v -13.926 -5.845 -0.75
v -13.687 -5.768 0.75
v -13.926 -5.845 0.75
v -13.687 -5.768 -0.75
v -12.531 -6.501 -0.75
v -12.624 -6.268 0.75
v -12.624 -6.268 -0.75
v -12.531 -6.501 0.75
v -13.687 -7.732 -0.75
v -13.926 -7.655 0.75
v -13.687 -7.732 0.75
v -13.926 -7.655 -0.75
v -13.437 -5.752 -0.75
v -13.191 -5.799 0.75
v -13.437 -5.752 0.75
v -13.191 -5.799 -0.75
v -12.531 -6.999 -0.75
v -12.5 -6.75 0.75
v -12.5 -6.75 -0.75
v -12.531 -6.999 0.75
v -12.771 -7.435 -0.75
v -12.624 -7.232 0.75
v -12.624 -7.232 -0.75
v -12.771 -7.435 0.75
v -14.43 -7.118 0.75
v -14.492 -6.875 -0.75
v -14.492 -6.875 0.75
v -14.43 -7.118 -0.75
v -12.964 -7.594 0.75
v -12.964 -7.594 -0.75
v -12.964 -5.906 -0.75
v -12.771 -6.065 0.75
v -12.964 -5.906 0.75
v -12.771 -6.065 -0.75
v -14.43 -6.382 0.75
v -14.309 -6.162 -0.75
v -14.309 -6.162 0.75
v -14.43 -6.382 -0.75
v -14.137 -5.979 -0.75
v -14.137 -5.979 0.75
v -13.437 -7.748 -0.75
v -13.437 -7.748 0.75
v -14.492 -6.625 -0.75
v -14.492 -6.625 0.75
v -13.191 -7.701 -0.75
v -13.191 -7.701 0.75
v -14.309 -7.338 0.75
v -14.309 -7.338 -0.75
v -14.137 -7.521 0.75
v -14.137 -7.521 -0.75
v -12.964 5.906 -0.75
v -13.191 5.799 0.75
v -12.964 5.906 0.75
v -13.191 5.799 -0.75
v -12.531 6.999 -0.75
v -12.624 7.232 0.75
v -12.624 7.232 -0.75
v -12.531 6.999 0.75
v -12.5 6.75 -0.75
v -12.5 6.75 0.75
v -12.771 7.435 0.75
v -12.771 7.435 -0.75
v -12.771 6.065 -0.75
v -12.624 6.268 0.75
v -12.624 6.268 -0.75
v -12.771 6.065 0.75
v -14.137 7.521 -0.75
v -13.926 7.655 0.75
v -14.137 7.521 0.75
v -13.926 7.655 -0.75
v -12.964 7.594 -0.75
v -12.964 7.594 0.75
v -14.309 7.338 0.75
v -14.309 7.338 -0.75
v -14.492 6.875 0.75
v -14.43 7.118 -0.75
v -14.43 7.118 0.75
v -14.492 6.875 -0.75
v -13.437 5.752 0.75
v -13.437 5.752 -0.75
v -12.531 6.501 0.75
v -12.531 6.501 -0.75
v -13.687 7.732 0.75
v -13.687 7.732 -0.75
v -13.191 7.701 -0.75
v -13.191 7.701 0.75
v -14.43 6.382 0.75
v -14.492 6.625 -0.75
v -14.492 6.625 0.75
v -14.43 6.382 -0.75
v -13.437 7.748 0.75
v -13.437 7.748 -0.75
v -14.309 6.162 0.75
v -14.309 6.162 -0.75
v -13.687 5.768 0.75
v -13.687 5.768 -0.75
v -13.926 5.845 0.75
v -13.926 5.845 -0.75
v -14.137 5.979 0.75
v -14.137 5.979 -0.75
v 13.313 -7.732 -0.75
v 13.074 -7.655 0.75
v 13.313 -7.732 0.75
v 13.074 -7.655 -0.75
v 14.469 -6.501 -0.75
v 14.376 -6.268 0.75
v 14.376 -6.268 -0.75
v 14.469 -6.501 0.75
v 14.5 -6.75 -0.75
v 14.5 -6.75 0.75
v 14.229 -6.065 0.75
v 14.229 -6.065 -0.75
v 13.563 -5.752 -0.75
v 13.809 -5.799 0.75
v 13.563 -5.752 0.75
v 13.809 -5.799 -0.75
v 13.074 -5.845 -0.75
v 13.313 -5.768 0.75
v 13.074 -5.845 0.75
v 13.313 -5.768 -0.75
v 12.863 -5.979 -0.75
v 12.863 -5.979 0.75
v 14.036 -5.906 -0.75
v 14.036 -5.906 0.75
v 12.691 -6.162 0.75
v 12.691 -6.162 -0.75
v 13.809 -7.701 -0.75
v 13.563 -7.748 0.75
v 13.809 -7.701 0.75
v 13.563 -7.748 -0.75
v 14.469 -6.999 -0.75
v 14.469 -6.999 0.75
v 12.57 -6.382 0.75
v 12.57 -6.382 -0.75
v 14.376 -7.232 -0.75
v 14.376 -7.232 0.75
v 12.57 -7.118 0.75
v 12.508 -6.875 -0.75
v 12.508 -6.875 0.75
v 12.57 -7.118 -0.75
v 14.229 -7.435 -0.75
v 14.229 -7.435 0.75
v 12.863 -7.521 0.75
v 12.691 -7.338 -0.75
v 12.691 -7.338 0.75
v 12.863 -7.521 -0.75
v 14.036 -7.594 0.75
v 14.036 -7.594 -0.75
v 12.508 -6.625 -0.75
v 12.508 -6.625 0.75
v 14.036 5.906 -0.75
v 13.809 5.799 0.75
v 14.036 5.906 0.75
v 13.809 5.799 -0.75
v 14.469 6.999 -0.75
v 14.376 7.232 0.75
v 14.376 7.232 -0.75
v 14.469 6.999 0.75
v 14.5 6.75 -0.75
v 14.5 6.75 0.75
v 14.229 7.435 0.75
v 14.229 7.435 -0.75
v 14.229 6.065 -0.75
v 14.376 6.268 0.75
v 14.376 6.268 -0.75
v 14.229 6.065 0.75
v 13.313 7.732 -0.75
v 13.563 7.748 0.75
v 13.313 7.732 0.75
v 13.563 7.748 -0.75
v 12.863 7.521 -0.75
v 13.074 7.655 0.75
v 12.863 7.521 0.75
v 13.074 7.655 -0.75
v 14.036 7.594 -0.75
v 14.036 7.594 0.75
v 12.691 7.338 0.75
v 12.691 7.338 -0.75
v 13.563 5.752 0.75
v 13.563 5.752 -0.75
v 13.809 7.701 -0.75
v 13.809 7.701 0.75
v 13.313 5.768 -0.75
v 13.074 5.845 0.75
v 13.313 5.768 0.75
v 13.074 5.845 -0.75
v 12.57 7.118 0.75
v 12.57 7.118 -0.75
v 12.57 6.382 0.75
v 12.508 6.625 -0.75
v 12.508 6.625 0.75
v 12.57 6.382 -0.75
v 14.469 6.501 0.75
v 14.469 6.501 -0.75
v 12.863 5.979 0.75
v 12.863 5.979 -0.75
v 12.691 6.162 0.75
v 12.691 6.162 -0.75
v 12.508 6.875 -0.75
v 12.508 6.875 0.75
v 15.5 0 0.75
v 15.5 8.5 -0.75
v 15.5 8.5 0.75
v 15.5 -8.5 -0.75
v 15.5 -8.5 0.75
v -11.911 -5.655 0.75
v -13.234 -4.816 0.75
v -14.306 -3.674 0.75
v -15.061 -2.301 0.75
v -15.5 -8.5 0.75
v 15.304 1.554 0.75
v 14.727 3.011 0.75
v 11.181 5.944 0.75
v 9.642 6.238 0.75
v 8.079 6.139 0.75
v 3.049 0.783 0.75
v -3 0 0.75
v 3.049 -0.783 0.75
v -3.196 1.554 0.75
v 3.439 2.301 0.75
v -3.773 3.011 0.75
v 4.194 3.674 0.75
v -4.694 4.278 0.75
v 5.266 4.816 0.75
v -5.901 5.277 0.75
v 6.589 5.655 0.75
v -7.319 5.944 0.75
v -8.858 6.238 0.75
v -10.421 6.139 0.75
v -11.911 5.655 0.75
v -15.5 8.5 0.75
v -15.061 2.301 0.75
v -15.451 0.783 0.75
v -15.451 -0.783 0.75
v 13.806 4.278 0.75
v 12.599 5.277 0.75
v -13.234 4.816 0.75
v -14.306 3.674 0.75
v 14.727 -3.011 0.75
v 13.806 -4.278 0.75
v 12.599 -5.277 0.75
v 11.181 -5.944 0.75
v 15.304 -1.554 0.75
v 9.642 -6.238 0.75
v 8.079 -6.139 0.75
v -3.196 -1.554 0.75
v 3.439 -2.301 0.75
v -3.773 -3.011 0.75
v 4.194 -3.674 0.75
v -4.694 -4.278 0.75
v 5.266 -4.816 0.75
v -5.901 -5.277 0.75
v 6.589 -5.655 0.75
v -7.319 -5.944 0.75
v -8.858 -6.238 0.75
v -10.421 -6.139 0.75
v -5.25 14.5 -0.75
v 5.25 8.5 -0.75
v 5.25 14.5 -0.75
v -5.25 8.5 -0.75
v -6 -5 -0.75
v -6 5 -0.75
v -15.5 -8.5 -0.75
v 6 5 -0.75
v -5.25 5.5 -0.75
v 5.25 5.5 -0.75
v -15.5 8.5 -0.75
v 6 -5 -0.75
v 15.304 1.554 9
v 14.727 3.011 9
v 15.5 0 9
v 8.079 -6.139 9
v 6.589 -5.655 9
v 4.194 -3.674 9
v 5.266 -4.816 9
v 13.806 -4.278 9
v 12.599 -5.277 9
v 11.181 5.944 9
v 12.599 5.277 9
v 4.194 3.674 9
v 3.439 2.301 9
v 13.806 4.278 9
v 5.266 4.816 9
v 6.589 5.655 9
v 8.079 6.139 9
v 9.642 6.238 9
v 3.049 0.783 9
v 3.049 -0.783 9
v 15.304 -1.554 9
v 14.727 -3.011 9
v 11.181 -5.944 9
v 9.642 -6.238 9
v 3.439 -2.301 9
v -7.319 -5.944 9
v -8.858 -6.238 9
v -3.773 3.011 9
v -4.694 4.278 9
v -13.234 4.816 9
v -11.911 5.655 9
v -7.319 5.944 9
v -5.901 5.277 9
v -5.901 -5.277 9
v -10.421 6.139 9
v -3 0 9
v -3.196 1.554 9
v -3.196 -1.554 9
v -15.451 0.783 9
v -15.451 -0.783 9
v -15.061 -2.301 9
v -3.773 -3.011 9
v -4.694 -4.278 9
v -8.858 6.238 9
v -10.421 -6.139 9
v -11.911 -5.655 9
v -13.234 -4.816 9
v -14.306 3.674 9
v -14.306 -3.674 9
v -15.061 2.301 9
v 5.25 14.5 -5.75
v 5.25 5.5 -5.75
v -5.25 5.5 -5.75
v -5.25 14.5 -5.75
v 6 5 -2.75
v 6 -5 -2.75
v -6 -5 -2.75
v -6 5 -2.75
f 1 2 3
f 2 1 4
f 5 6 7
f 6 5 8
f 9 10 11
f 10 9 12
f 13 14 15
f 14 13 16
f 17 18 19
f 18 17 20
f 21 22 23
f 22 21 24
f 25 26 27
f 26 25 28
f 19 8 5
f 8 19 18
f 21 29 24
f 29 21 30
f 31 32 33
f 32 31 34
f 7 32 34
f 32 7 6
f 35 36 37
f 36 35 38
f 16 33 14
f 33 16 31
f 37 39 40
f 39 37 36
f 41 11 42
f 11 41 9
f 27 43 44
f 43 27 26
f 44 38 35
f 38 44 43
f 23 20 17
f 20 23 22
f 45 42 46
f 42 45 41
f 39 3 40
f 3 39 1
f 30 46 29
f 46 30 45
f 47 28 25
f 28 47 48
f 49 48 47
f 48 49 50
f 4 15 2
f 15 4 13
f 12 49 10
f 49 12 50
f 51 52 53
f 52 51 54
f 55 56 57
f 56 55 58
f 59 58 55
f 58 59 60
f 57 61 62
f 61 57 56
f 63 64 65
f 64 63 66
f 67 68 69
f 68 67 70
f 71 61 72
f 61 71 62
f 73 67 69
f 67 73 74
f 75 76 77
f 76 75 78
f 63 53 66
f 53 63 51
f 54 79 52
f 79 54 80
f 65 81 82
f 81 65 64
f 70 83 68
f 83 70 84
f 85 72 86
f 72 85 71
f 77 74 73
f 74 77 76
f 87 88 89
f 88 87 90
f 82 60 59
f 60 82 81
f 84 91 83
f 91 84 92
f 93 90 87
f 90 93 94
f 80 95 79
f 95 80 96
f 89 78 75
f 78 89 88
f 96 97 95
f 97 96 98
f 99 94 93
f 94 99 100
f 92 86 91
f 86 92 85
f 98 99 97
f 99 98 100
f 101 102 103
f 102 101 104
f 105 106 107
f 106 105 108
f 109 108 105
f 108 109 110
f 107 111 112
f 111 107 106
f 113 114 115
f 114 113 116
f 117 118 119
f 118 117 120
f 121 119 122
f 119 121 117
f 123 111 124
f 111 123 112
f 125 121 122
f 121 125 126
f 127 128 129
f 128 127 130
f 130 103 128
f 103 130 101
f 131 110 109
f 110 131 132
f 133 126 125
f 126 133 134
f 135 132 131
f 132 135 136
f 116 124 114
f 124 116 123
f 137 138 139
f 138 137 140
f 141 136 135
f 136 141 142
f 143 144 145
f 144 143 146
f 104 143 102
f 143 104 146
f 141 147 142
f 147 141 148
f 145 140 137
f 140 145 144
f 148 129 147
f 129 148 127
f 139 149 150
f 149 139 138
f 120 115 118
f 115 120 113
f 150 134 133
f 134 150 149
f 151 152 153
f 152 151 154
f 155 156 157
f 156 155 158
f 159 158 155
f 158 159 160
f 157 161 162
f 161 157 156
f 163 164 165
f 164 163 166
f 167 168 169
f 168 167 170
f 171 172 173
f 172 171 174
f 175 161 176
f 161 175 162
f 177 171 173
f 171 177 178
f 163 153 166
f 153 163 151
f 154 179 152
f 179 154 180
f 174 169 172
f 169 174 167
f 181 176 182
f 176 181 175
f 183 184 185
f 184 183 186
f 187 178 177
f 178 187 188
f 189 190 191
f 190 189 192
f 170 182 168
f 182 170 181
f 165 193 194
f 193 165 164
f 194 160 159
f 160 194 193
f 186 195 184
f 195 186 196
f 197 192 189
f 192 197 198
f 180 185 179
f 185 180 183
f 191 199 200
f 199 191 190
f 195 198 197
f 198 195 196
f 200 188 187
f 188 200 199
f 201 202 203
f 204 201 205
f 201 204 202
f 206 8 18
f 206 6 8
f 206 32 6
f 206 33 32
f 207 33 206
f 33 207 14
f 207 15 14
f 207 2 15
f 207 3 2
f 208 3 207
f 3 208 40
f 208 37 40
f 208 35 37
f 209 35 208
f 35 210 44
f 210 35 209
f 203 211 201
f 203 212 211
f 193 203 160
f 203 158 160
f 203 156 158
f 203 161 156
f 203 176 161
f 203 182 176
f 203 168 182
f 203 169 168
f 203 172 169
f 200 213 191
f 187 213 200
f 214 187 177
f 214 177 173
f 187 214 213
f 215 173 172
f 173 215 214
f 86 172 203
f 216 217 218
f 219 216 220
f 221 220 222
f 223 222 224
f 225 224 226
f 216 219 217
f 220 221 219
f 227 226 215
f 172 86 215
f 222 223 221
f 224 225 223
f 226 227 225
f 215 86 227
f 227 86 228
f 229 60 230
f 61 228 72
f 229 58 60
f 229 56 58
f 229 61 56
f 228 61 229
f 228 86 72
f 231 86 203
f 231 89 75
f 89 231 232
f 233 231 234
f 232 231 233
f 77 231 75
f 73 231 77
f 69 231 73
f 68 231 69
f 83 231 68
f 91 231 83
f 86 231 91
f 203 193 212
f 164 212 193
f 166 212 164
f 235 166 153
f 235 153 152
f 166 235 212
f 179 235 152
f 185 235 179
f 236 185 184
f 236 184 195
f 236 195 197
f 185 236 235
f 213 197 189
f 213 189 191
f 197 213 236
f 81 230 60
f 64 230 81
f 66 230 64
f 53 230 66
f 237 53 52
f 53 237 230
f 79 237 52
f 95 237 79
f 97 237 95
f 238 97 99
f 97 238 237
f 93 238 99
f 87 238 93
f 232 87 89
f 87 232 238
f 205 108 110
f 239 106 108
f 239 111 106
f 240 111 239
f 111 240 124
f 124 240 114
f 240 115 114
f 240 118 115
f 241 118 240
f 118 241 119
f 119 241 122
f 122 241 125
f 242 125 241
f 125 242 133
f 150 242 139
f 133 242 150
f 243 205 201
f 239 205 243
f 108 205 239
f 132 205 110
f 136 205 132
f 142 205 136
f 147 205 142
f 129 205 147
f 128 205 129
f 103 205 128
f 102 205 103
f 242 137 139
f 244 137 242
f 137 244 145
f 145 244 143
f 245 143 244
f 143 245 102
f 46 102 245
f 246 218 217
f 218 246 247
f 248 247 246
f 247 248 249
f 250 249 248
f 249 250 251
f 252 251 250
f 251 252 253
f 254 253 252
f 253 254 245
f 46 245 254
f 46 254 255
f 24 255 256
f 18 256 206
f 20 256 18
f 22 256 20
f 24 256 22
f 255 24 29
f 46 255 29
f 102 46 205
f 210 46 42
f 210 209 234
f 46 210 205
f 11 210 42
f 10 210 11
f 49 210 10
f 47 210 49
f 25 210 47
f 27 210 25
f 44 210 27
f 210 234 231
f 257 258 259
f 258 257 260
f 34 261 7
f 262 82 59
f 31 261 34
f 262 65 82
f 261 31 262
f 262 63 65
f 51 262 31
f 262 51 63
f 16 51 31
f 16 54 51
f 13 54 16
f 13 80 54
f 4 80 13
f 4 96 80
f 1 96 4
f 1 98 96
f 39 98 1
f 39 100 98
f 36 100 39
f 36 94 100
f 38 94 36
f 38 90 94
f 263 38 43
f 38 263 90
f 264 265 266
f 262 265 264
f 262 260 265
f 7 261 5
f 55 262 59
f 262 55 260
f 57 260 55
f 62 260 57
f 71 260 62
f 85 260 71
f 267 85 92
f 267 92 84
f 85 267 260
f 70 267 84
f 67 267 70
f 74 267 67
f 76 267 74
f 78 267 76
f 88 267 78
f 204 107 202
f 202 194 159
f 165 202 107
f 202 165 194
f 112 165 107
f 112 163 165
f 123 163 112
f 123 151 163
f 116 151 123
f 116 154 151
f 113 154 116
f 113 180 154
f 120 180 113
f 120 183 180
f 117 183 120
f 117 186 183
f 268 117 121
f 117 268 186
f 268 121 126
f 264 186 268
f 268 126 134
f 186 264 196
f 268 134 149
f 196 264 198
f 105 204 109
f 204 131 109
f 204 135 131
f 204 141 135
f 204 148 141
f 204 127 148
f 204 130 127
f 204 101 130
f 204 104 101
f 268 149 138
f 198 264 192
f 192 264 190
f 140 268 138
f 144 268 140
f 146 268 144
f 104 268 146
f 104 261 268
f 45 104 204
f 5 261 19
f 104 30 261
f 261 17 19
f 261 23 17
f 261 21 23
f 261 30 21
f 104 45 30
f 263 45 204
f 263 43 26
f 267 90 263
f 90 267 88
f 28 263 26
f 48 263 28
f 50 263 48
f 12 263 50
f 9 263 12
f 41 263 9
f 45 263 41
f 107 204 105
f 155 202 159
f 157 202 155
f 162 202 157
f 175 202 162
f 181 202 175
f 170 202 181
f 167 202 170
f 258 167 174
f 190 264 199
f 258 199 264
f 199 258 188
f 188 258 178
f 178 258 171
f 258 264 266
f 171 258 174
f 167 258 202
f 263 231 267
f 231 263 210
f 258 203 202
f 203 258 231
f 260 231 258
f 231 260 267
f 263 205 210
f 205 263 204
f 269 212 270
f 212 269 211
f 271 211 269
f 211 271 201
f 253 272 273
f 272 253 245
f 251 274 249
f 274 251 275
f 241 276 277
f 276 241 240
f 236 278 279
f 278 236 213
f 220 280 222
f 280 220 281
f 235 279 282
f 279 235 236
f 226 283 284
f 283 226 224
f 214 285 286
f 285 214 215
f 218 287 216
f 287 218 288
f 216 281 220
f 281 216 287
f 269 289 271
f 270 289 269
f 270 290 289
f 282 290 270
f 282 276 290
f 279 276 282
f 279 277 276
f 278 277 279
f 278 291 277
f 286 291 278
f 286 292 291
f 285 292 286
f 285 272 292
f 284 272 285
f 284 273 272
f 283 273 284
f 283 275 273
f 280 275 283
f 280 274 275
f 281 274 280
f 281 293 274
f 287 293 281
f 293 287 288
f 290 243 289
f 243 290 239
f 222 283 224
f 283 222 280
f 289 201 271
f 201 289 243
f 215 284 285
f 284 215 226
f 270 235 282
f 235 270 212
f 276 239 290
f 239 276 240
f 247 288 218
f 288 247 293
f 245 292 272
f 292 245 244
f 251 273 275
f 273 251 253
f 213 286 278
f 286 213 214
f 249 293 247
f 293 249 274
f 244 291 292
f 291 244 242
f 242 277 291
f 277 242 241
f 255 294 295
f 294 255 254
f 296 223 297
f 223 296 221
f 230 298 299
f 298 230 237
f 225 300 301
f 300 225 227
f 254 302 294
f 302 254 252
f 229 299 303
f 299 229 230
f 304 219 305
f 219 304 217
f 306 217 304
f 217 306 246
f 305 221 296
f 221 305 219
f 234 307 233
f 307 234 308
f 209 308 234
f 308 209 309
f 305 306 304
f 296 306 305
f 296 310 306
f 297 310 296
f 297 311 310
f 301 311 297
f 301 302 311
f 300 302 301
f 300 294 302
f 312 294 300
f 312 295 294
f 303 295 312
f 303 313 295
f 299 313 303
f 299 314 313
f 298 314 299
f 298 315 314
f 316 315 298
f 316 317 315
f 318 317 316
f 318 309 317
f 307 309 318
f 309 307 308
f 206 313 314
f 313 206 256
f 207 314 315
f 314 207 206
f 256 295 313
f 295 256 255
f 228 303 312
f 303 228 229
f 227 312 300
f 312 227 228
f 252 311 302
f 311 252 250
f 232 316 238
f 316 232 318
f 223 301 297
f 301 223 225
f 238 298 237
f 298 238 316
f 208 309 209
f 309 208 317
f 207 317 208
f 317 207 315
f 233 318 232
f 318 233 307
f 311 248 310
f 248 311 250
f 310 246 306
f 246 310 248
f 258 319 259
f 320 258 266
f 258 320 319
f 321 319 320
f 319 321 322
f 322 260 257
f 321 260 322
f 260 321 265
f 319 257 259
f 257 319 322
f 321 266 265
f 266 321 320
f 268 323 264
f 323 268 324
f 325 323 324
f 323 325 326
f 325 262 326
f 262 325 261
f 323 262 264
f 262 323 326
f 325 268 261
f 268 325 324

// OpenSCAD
$fn=25;

module rwc_0001(){
    difference(){
        cube([31, 17, 1.5], center=true);

        for(x=[-1, 1]){
            for(y=[-1, 1])
                translate([x*27/2, y*13.5/2, 0])
                cylinder(d=2, h=1.6, center=true);
        }
    }

    for(i=[-1, 1])
        translate([i*-18.5/2, 0, 0])
            color("gray")
            cylinder(d=12.5, h=9);

    translate([0, 17/2+1.5, -2.5-0.75])
        color("black")
        cube([10.5, 9, 5], center=true);
    translate([0, 0, -1.75])
        color("black")
        cube([12, 10, 2], center=true);
}

rwc_0001();
